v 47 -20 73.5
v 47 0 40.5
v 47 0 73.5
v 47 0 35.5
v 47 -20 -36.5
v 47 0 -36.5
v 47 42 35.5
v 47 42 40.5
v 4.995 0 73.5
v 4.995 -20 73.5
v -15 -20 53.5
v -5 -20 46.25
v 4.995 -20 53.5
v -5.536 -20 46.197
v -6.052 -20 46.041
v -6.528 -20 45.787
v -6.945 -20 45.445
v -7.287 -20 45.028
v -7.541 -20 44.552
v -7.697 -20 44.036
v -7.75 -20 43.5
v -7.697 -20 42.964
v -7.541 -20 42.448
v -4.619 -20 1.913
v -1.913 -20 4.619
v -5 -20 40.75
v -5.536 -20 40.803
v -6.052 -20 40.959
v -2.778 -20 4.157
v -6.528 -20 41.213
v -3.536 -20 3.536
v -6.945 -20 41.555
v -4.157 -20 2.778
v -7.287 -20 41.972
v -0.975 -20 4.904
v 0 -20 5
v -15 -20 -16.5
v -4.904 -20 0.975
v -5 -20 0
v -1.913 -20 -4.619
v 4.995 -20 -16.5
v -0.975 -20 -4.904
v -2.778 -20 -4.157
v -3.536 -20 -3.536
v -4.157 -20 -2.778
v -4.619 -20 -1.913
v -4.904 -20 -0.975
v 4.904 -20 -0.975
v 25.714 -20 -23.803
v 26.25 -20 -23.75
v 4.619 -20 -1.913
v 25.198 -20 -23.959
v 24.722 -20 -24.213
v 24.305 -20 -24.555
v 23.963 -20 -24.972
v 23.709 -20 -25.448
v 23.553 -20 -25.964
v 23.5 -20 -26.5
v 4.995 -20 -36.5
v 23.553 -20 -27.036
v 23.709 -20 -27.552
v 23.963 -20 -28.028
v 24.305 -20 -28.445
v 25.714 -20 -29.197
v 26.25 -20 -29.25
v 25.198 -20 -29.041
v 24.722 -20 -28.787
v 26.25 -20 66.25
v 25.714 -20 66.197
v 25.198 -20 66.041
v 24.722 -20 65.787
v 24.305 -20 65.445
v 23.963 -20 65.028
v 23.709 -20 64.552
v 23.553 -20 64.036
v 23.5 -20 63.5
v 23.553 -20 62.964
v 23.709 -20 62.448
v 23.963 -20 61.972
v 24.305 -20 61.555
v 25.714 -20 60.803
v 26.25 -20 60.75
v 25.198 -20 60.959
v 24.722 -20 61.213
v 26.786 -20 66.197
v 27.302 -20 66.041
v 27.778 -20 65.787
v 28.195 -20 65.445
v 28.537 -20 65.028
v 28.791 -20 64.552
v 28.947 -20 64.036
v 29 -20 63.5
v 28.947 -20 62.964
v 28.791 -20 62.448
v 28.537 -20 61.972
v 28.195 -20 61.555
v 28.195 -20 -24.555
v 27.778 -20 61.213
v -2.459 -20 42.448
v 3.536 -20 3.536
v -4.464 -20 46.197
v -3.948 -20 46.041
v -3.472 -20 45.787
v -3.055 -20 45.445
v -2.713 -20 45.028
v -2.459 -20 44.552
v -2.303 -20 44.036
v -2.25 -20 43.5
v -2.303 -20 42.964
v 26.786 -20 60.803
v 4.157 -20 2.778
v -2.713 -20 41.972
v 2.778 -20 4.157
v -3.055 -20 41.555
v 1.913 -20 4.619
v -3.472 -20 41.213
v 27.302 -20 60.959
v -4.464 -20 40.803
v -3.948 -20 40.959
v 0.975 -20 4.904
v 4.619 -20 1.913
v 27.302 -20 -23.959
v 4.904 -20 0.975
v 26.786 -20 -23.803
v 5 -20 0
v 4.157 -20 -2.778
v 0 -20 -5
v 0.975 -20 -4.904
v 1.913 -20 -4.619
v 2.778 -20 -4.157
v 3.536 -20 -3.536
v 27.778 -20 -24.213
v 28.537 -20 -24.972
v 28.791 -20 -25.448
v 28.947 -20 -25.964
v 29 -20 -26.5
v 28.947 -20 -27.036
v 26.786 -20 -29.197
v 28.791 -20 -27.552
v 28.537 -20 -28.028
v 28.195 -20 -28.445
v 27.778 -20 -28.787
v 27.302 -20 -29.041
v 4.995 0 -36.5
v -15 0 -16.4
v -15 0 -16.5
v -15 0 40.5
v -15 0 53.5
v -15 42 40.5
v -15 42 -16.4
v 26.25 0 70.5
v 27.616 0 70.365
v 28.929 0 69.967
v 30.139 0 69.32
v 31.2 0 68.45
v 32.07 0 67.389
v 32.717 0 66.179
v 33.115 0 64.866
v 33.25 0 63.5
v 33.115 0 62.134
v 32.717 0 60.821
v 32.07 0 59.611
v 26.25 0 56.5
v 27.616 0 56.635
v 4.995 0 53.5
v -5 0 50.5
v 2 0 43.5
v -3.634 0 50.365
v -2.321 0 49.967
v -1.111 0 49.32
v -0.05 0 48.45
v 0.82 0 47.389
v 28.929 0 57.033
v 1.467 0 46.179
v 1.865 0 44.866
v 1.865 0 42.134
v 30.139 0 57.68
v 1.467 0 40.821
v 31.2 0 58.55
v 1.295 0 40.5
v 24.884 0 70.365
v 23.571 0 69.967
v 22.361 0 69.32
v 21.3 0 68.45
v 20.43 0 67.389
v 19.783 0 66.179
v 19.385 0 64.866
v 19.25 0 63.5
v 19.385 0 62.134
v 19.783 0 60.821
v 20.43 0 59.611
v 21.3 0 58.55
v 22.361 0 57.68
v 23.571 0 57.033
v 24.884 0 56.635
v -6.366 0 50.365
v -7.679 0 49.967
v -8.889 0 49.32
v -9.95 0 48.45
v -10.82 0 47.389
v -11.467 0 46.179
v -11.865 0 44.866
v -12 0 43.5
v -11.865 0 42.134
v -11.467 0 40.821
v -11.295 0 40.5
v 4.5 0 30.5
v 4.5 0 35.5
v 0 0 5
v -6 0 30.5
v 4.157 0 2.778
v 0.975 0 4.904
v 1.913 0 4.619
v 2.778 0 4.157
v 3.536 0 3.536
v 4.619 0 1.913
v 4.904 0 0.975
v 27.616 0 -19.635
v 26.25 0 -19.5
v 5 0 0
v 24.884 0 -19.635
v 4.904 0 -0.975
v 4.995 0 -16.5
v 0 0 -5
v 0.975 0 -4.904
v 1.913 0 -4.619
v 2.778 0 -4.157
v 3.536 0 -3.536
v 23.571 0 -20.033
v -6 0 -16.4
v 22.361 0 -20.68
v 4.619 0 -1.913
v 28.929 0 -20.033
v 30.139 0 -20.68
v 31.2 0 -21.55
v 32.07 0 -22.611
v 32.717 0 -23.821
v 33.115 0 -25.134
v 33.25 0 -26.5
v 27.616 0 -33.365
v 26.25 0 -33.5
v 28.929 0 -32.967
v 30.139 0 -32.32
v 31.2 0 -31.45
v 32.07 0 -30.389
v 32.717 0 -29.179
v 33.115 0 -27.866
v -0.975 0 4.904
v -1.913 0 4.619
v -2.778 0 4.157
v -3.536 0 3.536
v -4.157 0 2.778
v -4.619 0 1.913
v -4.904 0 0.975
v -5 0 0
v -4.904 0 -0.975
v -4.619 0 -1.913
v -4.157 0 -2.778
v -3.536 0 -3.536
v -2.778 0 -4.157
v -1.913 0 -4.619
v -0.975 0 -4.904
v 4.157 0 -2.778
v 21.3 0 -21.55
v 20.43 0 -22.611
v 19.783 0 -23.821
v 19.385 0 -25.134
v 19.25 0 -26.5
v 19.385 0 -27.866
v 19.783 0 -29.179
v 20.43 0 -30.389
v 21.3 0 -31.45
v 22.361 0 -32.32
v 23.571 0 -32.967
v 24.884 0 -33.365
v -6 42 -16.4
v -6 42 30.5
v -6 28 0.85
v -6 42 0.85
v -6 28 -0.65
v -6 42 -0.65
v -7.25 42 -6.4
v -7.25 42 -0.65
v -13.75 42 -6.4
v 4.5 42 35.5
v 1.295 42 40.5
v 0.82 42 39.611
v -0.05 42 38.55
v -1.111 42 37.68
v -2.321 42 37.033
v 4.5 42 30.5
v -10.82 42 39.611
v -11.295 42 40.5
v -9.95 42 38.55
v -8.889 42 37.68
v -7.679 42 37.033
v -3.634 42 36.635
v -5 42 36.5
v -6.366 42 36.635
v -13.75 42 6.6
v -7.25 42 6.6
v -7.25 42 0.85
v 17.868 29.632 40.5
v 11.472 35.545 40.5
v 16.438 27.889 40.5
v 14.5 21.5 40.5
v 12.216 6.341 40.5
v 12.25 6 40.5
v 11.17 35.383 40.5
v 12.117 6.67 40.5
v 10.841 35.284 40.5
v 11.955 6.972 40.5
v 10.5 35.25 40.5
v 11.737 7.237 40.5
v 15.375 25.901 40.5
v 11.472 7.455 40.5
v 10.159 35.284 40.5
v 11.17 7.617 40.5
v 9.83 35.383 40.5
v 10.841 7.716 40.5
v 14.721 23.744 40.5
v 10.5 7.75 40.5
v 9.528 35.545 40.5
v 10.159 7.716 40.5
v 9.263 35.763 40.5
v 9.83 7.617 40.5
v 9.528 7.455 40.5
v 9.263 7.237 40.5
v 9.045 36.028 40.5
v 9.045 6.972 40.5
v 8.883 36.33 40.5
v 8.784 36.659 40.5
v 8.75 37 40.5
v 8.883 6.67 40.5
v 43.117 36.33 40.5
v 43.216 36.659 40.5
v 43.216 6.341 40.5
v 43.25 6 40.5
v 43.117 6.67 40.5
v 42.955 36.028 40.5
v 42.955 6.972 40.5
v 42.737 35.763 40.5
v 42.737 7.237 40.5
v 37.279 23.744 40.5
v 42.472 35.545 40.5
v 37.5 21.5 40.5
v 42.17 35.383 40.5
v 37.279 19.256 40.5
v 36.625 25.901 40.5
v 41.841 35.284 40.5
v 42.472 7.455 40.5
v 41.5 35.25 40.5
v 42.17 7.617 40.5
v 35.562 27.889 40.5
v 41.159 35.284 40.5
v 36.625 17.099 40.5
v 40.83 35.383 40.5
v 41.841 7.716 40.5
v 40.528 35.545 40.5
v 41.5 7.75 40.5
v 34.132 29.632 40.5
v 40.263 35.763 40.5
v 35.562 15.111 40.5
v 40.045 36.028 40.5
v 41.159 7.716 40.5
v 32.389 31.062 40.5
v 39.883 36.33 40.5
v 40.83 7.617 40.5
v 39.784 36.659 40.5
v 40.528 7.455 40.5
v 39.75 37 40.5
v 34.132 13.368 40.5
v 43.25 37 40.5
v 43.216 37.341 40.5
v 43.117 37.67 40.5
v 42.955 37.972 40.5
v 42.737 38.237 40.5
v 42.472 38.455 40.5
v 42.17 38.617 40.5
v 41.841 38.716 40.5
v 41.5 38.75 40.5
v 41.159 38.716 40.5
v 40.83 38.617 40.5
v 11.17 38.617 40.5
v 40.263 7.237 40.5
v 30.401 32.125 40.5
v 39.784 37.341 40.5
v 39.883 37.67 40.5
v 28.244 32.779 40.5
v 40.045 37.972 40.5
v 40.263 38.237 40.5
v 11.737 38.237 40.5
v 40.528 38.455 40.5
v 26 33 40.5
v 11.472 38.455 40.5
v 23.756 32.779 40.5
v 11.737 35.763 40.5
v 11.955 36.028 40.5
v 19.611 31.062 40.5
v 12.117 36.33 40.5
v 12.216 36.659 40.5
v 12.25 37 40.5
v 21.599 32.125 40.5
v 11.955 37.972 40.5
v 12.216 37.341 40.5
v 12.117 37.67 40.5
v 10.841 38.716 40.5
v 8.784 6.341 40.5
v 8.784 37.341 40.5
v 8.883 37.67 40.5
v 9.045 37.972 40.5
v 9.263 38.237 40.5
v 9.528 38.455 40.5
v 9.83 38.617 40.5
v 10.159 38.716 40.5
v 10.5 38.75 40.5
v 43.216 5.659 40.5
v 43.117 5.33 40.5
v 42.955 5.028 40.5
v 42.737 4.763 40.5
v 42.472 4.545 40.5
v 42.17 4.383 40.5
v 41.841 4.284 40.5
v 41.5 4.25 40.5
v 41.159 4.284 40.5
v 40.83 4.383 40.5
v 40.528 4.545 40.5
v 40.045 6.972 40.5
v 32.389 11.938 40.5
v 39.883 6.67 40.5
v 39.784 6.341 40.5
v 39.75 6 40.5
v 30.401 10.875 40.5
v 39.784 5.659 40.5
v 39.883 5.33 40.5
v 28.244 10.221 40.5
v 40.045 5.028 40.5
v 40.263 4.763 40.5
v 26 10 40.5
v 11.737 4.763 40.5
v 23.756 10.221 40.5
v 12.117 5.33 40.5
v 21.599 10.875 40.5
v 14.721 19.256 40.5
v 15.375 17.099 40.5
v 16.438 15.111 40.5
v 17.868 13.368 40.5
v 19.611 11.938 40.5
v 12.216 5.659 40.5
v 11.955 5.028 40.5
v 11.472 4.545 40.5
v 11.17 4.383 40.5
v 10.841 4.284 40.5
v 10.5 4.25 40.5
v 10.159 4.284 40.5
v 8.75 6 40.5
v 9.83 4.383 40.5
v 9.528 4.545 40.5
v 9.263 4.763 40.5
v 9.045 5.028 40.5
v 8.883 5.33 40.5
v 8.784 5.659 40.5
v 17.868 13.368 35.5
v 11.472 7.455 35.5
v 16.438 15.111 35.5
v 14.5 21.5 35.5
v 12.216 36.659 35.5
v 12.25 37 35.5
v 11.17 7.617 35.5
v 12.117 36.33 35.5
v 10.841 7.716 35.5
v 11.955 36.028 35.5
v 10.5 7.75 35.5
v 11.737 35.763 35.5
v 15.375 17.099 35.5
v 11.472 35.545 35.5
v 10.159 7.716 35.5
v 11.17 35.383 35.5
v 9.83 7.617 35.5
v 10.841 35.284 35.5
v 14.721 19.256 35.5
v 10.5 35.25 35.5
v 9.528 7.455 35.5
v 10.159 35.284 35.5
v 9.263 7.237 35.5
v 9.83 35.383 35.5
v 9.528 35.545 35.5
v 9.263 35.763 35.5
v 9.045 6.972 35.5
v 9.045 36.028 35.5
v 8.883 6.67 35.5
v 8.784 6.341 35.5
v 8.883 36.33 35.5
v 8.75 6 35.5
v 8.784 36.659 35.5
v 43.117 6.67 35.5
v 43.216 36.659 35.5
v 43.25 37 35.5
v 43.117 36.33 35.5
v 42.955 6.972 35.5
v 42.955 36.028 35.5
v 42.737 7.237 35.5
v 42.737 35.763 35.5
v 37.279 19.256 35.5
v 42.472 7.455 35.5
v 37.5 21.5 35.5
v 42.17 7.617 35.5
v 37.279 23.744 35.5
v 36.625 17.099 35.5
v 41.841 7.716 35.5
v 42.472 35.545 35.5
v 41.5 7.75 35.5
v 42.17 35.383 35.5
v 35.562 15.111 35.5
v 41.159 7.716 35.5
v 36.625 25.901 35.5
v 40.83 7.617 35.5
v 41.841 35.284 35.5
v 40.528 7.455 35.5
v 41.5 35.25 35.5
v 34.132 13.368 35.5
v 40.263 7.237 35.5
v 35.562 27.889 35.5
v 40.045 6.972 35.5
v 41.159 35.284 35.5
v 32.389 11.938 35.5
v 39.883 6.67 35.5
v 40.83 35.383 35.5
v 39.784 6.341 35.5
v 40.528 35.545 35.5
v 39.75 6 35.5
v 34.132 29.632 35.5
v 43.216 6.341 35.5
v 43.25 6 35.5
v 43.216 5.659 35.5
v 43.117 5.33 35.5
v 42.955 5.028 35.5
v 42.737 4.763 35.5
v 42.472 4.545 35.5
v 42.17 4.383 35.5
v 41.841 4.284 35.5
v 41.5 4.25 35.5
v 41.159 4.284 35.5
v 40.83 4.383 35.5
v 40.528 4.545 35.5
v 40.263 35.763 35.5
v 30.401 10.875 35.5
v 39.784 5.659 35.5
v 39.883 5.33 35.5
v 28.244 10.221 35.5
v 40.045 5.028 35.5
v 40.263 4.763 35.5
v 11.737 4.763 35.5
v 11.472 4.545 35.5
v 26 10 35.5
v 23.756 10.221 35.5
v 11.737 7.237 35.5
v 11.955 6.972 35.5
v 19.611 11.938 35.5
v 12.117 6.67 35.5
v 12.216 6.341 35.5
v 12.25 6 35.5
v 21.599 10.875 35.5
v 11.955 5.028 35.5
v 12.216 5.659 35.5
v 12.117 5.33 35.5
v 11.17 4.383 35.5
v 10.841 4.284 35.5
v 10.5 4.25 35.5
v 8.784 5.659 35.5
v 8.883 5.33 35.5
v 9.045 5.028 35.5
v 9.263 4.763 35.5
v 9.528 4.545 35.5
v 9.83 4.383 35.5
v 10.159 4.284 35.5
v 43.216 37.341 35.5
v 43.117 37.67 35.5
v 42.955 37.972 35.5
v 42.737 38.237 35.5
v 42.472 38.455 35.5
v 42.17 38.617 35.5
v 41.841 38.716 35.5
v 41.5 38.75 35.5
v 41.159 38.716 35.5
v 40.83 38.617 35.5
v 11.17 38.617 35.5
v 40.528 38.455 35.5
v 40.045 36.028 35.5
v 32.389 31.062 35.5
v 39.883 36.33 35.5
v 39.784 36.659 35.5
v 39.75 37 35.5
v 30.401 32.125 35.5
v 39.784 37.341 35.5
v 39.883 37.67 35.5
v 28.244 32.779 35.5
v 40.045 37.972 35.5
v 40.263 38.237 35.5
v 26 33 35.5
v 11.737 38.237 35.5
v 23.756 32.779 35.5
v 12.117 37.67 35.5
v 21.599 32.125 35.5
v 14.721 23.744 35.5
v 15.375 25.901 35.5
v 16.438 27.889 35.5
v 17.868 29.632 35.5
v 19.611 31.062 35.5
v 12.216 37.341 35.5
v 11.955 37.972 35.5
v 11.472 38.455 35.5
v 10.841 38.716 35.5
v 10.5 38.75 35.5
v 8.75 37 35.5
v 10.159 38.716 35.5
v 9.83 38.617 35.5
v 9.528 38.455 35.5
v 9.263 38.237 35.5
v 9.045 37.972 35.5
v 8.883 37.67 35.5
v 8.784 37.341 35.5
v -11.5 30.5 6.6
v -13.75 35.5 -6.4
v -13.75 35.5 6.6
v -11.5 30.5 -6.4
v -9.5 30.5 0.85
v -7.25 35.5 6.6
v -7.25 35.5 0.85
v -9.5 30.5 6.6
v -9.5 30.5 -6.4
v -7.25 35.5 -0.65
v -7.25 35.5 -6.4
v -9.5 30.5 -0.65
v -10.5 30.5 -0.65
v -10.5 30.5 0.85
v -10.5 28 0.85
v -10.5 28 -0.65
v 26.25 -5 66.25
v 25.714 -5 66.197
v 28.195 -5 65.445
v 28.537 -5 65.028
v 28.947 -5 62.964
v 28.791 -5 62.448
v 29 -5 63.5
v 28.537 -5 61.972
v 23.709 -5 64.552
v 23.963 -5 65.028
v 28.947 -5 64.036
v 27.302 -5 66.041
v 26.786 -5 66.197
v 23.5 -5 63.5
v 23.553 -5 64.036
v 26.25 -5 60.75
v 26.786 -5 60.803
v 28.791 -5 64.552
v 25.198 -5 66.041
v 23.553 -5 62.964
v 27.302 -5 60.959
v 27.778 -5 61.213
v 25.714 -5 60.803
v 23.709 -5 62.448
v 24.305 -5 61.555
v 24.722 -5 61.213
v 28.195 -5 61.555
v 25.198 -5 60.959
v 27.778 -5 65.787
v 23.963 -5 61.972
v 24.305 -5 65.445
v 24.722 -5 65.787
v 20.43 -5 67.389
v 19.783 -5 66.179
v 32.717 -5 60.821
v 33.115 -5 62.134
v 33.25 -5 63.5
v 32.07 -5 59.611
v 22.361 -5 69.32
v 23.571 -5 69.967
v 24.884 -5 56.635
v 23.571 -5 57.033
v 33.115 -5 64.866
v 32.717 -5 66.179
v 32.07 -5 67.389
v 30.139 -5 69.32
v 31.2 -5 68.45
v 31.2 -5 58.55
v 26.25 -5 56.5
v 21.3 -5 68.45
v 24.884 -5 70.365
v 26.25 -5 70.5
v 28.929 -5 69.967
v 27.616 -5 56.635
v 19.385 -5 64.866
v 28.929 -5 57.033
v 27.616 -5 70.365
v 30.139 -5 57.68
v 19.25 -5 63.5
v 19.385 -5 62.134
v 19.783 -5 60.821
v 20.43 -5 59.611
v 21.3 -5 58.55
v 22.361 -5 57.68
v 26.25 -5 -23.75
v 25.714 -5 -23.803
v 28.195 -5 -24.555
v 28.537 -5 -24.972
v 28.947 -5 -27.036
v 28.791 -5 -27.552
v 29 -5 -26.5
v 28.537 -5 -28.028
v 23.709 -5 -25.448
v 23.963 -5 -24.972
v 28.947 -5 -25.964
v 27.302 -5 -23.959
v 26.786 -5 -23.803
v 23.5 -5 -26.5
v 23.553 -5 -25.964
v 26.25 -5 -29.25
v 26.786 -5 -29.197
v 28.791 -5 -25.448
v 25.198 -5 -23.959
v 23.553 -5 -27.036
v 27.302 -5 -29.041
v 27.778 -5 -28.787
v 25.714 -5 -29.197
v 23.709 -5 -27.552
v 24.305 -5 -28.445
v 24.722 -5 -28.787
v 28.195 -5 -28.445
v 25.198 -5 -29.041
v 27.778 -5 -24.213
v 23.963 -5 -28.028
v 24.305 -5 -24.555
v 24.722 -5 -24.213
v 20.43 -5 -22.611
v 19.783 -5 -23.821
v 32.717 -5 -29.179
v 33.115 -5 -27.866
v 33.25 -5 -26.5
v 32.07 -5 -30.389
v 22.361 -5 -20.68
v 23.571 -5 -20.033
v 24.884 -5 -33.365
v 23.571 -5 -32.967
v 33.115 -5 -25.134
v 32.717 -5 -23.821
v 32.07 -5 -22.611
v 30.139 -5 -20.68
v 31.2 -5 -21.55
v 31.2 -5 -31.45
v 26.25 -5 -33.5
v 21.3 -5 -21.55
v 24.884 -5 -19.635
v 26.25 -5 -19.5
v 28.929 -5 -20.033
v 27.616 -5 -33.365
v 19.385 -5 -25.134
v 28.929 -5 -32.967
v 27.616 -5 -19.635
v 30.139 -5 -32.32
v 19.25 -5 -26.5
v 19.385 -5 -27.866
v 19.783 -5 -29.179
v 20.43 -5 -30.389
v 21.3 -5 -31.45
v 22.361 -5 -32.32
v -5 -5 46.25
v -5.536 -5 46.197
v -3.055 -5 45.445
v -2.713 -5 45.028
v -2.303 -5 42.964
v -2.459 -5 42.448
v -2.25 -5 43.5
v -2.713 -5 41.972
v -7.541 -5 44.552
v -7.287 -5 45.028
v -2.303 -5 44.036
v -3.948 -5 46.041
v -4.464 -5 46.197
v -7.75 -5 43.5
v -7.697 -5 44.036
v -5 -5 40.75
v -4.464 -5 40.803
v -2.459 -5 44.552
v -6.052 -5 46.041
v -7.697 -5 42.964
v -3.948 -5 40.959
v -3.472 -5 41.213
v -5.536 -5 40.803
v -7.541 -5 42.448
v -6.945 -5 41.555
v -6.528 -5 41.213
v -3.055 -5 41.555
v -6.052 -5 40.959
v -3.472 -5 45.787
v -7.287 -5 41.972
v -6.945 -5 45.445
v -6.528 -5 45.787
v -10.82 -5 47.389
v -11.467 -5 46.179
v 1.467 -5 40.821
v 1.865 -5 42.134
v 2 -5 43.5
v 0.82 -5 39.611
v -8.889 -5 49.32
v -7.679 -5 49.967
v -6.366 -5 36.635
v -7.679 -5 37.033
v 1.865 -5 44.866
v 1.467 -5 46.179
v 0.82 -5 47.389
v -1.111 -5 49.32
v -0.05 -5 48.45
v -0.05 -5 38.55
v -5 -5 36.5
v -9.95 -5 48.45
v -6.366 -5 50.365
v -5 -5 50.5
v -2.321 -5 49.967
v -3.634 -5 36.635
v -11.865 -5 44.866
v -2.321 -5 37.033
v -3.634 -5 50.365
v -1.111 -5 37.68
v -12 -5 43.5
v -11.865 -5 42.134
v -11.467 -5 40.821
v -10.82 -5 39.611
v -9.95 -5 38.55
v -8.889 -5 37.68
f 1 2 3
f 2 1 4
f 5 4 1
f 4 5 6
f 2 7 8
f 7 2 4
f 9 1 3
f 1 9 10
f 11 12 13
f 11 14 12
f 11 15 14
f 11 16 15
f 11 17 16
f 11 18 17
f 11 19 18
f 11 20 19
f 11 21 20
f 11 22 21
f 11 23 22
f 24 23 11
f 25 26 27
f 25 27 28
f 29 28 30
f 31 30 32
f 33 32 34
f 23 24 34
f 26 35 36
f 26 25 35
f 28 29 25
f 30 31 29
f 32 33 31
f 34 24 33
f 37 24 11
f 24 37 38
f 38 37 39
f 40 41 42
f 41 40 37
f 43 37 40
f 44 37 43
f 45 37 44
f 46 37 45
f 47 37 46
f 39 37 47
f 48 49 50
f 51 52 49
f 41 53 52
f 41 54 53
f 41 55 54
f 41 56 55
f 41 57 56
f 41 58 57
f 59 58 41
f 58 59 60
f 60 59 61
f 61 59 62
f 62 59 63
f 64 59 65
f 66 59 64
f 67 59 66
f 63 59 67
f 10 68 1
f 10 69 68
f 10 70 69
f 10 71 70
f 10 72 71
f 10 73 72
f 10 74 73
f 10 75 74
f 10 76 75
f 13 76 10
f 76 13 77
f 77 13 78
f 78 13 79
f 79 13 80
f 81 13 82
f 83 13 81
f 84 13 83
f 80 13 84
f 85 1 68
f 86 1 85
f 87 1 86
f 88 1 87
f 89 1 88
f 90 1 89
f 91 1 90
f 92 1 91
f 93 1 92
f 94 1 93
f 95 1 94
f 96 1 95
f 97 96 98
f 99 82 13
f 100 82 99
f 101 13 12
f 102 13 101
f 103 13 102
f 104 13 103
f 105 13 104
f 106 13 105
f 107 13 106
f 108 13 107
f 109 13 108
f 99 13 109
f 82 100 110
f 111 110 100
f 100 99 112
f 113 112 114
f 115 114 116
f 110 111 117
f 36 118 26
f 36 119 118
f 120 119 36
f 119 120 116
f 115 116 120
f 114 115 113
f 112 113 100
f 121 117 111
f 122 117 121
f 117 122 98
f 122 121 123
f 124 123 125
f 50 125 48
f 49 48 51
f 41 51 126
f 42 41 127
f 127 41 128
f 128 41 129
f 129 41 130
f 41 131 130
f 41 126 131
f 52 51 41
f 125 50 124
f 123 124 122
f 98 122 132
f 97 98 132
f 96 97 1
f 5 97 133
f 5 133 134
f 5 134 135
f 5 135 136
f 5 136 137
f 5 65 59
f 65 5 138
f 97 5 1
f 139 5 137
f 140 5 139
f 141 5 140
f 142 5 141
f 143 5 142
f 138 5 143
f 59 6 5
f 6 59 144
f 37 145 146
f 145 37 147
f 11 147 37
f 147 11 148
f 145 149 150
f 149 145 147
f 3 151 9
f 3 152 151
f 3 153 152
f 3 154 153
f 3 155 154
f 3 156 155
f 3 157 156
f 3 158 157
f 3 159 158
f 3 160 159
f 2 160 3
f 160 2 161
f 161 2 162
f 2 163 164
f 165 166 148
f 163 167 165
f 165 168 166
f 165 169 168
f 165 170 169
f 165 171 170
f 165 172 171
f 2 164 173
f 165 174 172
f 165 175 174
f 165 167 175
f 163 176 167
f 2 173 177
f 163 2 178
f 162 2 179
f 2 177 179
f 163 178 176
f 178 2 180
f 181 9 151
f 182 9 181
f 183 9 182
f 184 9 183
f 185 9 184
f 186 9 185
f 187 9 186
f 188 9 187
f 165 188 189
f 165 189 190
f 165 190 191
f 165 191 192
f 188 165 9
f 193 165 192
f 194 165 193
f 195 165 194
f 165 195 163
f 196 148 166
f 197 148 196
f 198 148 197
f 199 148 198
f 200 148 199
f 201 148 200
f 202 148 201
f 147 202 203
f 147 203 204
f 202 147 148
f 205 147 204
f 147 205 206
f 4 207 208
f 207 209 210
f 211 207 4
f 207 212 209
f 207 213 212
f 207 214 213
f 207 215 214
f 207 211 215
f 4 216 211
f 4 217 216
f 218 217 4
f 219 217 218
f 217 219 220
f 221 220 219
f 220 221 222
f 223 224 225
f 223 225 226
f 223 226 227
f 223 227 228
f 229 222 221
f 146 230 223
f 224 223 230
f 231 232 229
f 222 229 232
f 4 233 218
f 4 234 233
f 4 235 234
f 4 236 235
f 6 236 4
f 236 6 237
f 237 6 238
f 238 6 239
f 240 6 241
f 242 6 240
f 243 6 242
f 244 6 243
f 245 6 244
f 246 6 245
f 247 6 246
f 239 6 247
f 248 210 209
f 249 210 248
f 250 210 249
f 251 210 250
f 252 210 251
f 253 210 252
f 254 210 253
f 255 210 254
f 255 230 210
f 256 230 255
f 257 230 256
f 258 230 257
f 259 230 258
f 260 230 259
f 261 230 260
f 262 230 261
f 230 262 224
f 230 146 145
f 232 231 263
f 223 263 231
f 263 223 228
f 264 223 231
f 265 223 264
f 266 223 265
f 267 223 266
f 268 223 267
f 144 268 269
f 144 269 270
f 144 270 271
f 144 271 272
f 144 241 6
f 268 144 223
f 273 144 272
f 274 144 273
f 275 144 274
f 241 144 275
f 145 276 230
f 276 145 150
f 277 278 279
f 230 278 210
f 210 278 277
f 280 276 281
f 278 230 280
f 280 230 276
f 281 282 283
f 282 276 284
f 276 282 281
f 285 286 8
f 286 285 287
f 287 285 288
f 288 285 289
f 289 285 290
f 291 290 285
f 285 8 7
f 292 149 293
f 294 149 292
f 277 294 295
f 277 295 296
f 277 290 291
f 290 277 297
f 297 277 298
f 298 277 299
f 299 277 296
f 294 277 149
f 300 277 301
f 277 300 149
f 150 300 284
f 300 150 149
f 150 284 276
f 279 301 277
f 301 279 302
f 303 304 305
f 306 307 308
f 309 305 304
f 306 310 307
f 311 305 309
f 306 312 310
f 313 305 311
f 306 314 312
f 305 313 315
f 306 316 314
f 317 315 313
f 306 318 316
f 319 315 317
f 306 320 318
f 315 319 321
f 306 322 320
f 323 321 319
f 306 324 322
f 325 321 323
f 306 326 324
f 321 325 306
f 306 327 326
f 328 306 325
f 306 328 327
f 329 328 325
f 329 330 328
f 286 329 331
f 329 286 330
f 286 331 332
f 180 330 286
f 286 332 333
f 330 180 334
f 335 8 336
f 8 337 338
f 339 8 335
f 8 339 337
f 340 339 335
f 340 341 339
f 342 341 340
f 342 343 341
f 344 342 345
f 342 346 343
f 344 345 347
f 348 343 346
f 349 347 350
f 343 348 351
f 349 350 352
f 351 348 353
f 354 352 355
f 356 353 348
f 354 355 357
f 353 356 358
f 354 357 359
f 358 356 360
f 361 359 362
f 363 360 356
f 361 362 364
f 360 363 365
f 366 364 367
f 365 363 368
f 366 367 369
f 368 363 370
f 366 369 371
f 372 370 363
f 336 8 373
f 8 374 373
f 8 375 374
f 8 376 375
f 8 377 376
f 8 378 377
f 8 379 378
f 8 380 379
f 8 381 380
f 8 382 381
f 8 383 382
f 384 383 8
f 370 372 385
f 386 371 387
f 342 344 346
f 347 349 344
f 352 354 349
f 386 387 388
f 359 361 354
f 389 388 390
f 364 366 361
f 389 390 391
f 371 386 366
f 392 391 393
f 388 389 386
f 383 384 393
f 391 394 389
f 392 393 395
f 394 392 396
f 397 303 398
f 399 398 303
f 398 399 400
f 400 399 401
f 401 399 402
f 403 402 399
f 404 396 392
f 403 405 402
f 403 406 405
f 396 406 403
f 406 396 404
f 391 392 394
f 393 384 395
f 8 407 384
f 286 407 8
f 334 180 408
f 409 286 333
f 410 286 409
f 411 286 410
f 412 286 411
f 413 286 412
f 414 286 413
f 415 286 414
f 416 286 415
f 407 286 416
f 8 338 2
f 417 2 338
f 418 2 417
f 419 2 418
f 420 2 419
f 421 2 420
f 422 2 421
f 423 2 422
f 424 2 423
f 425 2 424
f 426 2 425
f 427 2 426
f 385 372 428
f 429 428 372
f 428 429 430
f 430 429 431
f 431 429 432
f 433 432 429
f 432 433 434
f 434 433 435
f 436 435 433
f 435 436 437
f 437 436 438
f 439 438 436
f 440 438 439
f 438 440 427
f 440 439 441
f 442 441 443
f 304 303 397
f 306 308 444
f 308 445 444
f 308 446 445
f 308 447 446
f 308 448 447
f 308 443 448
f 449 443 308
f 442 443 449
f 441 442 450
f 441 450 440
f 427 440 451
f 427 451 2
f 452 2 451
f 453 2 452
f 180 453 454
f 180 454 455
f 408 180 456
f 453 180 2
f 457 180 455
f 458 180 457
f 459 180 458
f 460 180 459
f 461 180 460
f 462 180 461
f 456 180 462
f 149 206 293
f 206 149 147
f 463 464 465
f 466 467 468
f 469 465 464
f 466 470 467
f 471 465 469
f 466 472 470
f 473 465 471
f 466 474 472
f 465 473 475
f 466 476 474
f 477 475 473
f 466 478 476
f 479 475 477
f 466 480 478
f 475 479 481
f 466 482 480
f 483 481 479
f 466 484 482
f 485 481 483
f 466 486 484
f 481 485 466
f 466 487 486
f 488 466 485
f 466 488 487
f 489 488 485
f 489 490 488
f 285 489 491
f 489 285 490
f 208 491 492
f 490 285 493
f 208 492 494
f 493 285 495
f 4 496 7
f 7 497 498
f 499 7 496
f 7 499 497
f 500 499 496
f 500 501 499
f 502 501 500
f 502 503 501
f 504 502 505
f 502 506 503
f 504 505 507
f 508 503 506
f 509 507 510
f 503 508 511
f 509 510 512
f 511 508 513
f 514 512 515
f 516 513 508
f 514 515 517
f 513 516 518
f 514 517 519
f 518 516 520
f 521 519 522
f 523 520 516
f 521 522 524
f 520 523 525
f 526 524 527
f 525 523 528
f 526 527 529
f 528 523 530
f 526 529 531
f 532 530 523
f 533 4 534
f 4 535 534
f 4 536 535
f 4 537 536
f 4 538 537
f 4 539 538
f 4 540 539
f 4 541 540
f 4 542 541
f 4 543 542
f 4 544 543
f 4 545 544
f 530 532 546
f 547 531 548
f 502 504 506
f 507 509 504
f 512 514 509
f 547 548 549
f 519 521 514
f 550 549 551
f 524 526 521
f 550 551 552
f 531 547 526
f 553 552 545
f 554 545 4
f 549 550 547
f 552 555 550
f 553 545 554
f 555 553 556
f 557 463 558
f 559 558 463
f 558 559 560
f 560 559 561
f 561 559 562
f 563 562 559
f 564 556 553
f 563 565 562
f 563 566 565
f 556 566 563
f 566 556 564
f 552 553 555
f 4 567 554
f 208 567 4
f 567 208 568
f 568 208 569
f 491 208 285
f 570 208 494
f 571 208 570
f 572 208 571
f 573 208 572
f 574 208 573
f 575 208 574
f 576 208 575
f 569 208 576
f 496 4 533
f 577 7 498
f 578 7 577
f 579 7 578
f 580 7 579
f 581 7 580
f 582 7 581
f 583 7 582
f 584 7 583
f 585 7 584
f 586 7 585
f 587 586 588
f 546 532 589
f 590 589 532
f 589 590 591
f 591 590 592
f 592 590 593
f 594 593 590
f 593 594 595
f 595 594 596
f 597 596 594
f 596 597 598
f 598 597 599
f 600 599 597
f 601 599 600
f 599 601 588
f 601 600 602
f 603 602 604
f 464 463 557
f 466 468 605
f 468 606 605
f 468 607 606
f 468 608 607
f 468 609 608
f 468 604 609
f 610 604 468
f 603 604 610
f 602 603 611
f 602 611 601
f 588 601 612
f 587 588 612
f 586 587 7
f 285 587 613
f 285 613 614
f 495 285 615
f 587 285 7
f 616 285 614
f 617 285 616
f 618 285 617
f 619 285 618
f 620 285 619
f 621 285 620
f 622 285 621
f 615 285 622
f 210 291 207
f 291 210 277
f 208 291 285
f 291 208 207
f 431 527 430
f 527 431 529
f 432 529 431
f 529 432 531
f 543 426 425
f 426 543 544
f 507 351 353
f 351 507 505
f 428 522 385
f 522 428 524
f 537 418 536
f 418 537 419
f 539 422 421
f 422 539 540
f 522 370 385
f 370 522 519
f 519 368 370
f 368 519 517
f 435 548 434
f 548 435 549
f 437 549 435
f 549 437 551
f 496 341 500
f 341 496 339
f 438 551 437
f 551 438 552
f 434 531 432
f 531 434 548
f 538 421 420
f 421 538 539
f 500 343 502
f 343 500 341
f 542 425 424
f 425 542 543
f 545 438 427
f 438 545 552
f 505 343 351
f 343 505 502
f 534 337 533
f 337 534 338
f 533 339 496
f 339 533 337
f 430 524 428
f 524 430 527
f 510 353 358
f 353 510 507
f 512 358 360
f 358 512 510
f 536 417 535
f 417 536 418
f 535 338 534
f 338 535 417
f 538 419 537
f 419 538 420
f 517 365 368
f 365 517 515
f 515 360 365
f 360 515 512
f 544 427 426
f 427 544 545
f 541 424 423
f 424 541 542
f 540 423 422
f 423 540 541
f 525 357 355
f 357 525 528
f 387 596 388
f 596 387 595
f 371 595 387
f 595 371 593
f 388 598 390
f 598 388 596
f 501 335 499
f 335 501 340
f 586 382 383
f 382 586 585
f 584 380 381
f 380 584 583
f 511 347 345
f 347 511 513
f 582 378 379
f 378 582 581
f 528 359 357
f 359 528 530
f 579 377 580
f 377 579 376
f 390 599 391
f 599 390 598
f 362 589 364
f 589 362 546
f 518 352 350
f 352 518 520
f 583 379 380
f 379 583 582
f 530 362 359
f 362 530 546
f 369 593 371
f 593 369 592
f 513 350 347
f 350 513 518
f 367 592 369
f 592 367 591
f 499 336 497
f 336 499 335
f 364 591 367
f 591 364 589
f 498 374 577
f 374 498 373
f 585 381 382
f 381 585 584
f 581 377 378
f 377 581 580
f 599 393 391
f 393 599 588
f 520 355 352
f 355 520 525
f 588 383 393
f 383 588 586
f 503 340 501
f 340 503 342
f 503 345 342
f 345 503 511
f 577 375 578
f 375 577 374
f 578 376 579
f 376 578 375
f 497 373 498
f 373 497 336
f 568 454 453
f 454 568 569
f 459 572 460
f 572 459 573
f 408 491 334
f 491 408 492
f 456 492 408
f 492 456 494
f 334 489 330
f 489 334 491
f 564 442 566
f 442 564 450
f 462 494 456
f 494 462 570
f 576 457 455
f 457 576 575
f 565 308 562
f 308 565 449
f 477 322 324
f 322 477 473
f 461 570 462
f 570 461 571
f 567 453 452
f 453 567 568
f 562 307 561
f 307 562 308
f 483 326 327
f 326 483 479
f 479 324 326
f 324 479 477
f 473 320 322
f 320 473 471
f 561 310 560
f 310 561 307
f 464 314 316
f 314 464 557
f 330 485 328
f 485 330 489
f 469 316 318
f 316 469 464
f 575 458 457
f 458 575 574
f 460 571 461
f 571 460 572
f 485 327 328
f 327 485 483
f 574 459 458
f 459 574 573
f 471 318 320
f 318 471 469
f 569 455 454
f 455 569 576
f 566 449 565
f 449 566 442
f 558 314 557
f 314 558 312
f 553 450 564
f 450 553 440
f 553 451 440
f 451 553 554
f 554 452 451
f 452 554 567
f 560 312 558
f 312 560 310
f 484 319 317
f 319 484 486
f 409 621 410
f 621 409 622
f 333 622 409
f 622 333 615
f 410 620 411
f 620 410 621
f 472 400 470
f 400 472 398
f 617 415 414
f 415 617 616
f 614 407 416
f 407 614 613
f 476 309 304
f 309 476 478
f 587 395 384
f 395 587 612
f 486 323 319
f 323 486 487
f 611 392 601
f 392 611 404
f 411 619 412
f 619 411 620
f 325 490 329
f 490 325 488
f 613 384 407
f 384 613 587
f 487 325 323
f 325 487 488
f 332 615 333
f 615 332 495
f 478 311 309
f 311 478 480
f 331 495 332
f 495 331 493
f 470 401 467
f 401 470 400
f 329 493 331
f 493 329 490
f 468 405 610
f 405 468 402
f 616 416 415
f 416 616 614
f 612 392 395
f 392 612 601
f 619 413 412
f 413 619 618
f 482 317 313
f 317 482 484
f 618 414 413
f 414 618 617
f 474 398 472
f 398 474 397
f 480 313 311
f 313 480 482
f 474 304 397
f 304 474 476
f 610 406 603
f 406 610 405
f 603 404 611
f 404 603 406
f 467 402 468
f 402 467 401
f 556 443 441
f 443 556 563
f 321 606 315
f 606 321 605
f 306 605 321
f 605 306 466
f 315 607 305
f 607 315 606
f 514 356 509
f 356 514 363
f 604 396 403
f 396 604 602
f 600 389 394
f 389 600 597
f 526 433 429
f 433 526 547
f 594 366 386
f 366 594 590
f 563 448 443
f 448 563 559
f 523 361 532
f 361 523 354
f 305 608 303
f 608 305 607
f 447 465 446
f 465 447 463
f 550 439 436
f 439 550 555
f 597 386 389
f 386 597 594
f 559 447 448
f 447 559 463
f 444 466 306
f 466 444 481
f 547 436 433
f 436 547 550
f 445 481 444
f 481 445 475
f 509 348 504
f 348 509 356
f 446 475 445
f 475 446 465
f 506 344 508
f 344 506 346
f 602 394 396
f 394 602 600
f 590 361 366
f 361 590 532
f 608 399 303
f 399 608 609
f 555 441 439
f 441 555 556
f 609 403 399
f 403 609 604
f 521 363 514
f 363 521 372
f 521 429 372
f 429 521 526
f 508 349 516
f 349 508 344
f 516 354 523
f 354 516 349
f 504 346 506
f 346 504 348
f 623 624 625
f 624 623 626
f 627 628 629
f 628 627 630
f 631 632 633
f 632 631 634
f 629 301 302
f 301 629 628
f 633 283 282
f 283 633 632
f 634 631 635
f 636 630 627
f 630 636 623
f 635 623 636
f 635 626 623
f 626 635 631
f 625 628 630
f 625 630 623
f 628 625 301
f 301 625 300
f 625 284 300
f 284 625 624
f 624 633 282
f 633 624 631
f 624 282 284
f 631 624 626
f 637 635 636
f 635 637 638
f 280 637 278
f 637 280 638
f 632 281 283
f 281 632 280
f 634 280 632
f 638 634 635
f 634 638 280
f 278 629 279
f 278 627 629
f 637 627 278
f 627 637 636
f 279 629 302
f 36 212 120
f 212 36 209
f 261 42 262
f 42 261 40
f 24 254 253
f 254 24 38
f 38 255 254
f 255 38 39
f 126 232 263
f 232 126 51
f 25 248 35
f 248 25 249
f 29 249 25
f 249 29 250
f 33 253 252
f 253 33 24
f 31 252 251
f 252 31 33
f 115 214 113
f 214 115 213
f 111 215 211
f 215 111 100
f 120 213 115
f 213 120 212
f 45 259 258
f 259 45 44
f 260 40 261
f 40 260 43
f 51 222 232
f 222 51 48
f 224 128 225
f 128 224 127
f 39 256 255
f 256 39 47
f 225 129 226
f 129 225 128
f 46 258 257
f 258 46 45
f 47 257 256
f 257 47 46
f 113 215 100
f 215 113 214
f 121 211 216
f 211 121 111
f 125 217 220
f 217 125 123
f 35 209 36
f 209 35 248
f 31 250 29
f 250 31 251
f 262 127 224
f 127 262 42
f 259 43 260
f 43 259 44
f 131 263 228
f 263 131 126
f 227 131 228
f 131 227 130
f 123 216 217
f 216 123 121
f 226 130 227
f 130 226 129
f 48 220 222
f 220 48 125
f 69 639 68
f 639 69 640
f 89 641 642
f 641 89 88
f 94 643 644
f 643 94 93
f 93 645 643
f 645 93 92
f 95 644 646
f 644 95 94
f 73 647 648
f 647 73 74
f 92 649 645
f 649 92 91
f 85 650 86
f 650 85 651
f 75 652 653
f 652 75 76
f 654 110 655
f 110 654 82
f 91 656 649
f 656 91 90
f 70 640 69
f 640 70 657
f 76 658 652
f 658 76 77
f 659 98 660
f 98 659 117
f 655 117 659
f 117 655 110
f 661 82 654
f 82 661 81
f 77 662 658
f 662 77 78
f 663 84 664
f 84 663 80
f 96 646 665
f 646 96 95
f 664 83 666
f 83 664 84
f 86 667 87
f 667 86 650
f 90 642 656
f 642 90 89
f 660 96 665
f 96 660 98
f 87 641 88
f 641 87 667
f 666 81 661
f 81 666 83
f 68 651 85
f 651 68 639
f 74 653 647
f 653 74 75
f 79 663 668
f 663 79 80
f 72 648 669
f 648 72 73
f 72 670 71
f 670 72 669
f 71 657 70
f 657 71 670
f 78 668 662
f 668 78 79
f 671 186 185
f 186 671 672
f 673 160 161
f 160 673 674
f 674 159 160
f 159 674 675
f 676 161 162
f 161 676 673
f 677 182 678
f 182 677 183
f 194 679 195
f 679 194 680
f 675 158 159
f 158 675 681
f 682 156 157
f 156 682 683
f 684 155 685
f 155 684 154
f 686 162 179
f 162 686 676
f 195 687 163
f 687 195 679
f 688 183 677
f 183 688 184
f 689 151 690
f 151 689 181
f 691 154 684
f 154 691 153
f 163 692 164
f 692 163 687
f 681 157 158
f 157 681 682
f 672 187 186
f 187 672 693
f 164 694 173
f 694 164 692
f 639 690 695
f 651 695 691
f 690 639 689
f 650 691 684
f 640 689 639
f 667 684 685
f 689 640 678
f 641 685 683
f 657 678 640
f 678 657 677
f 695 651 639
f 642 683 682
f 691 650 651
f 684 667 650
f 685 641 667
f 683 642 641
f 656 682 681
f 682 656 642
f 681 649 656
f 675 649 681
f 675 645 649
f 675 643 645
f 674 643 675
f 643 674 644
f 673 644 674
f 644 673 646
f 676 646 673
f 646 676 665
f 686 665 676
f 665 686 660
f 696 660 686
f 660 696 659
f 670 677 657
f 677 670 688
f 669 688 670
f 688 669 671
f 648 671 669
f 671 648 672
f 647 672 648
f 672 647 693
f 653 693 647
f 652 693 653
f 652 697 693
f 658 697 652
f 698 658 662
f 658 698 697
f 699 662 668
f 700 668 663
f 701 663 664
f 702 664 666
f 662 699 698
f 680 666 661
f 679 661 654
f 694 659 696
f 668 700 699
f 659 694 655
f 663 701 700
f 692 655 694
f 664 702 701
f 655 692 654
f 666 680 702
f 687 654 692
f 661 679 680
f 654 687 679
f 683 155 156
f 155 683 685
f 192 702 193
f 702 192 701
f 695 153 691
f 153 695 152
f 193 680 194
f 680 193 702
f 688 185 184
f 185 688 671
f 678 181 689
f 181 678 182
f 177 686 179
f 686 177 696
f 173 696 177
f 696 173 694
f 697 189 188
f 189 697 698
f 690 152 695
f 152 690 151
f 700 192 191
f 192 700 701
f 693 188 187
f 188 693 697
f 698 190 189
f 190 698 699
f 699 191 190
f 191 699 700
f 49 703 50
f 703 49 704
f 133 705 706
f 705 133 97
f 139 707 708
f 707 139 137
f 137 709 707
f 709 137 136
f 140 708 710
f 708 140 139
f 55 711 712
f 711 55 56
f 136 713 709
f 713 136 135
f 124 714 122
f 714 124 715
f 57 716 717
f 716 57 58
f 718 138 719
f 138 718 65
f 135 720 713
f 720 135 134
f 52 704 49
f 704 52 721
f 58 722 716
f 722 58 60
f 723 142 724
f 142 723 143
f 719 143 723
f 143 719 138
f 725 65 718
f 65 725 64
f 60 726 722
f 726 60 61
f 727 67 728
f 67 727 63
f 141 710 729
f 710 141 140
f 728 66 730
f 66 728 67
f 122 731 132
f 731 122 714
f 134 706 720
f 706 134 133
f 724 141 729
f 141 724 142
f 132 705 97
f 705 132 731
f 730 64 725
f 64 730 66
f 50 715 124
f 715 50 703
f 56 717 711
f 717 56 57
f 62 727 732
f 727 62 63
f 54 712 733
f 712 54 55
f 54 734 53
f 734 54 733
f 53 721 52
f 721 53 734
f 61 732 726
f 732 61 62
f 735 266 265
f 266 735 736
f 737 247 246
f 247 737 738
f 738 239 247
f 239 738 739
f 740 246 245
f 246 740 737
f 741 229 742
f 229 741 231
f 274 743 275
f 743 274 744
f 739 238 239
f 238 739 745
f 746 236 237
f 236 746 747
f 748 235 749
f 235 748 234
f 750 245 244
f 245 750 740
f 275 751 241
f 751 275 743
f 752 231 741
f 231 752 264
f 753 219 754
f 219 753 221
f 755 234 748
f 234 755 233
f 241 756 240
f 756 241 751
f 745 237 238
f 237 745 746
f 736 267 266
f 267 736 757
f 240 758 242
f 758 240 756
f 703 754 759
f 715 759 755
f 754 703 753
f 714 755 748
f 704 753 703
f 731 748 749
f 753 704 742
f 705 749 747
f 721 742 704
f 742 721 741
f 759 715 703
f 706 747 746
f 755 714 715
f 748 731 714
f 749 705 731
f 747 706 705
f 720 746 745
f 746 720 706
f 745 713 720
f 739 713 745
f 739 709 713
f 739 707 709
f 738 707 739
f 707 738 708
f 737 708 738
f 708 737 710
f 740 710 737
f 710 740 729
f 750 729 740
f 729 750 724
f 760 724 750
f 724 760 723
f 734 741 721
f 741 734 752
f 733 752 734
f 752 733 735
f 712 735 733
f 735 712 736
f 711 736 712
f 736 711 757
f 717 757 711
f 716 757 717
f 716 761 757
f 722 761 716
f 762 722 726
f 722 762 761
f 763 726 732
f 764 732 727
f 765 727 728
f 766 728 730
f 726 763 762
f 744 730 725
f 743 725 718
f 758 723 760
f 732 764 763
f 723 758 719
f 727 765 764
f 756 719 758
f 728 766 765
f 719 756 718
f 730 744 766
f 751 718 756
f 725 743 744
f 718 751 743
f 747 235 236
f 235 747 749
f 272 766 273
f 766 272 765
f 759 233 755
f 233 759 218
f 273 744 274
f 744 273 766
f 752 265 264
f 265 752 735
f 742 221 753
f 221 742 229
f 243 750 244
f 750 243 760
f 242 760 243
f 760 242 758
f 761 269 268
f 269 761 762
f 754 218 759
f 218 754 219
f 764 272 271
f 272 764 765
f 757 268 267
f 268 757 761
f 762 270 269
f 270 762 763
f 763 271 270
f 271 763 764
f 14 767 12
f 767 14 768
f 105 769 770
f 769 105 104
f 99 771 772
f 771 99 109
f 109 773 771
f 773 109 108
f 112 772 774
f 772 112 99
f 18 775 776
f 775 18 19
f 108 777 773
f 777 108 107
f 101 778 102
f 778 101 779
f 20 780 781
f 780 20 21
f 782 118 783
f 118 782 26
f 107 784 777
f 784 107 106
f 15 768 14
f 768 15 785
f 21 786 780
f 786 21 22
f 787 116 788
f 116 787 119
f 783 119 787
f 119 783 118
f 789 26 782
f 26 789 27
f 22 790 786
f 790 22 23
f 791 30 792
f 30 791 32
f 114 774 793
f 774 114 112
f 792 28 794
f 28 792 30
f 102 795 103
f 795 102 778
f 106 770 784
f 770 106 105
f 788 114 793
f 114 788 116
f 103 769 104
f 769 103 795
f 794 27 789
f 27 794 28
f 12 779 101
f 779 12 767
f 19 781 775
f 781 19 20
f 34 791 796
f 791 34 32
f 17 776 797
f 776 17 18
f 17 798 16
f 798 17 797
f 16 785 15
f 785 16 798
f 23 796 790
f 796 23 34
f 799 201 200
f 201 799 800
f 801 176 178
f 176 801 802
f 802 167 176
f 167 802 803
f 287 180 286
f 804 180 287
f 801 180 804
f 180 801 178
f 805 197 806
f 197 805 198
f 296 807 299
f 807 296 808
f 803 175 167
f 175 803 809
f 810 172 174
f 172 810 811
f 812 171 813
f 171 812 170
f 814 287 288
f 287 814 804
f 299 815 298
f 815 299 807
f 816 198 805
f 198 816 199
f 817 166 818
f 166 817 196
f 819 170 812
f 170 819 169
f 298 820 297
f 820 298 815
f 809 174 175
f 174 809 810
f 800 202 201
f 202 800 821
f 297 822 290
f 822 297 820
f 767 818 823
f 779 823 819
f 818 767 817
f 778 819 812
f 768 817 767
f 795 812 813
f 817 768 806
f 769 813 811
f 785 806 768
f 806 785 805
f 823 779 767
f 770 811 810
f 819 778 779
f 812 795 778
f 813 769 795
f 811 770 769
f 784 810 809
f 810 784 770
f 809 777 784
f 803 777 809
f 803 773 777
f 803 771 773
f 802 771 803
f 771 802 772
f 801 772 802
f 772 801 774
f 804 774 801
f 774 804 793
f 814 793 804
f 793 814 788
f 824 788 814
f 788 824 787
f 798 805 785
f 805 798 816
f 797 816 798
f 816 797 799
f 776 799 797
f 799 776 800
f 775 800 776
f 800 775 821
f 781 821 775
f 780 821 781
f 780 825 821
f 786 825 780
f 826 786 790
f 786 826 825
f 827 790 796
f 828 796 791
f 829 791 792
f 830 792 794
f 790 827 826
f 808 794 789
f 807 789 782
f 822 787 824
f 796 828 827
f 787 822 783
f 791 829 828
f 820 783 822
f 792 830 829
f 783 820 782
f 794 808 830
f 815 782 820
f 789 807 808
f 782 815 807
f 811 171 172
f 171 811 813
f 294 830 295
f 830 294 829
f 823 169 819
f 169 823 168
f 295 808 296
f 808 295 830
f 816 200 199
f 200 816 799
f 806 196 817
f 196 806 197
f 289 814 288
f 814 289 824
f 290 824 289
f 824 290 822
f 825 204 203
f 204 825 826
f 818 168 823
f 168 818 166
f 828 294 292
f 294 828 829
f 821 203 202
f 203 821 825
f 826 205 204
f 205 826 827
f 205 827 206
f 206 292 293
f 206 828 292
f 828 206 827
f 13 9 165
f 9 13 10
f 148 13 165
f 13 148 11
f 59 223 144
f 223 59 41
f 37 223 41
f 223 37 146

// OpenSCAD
//translate([-29,0,0])import("./smartrapcore/XY_motor_left - XY_motor_left.stl");
$fn=32;

izquierda = 1;


translate([70-izquierda*70,0,0])
mirror([1-izquierda,0,0])
difference(){
translate([9.5,0,-10.9])
mirror([1,0,0])
color("blue")
difference(){
    union(){
        hull(){
            //translate([15.5,-10,-10])cube([9,10,16]);
            translate([-17.5-20,-20,-5.6-20])cube([42+20,20,70+20+20]);

        }
        translate([15.5,-10,14])cube([9,10,16]);
        translate([15.5,-10,-5.5])cube([9,52,16-2+30+5+6.6]);
        translate([-17.5-20,-10,14+3.8+15+7+6.6-10*(1-izquierda)])cube([42+20,52,5]);
        translate([-17.5+22.5,-10,14+3.8+15+7+6.6-5])cube([17,52,5]);
    }

//translate([-7.5,-25,23-3.3+7])cube([22,50,13+10]);
    translate([-12-20,6,10]){
        cylinder(r=3.5/2,h=50);
        translate([0,31,0])cylinder(r=3.5/2,h=50);
        translate([31,0,0])cylinder(r=3.5/2,h=50);
        translate([31,31,0])cylinder(r=3.5/2,h=50);
        translate([31/2,31/2,0])cylinder(r=23/2,h=50);
    }

    translate([9.5,5,10.9])rotate([90,0,0])cylinder(r=10/2,h=50);

    translate([18+2,38,11])rotate([180,0,0])endstop();
    
}


translate([-15.005,-20.01,73.5-20])
color("red")
cube([20,20+1,40]);


translate([-15.005,-20.01,-76.5+20])
color("red")
cube([20,20+1,40]);

translate([-5+42.5/2,10,43.5-10])
mirror([0,1,0])
tornillo();
translate([-5+42.5/2,10,43.5-10-90])
mirror([0,1,0])
tornillo();
translate([-5+42.5/2-41.25+10,10,43.5-10-3-7-10])
mirror([0,1,0])
tornillo();

}
//include <esquinastraseras.scad>
module endstop(){
    rotate([90,0,0]){
        hull(){
            translate([0,0,2])cube([6.5,13,9],center=true);
            translate([0,0,-5])cube([2,13,5],center=true);
        }
        translate([-5,0,0])cube([10,1.5,20],center=true);
    }
}



module tornillo(){
    translate([10,-10,70/2-30+25])
    rotate([90+180,0,0])
    cylinder(d=5.5,h=50);

    translate([0,-25,0])
    translate([10,-10,70/2-30+25])
    rotate([90+180,0,0])
    cylinder(d=14,h=50);
}
